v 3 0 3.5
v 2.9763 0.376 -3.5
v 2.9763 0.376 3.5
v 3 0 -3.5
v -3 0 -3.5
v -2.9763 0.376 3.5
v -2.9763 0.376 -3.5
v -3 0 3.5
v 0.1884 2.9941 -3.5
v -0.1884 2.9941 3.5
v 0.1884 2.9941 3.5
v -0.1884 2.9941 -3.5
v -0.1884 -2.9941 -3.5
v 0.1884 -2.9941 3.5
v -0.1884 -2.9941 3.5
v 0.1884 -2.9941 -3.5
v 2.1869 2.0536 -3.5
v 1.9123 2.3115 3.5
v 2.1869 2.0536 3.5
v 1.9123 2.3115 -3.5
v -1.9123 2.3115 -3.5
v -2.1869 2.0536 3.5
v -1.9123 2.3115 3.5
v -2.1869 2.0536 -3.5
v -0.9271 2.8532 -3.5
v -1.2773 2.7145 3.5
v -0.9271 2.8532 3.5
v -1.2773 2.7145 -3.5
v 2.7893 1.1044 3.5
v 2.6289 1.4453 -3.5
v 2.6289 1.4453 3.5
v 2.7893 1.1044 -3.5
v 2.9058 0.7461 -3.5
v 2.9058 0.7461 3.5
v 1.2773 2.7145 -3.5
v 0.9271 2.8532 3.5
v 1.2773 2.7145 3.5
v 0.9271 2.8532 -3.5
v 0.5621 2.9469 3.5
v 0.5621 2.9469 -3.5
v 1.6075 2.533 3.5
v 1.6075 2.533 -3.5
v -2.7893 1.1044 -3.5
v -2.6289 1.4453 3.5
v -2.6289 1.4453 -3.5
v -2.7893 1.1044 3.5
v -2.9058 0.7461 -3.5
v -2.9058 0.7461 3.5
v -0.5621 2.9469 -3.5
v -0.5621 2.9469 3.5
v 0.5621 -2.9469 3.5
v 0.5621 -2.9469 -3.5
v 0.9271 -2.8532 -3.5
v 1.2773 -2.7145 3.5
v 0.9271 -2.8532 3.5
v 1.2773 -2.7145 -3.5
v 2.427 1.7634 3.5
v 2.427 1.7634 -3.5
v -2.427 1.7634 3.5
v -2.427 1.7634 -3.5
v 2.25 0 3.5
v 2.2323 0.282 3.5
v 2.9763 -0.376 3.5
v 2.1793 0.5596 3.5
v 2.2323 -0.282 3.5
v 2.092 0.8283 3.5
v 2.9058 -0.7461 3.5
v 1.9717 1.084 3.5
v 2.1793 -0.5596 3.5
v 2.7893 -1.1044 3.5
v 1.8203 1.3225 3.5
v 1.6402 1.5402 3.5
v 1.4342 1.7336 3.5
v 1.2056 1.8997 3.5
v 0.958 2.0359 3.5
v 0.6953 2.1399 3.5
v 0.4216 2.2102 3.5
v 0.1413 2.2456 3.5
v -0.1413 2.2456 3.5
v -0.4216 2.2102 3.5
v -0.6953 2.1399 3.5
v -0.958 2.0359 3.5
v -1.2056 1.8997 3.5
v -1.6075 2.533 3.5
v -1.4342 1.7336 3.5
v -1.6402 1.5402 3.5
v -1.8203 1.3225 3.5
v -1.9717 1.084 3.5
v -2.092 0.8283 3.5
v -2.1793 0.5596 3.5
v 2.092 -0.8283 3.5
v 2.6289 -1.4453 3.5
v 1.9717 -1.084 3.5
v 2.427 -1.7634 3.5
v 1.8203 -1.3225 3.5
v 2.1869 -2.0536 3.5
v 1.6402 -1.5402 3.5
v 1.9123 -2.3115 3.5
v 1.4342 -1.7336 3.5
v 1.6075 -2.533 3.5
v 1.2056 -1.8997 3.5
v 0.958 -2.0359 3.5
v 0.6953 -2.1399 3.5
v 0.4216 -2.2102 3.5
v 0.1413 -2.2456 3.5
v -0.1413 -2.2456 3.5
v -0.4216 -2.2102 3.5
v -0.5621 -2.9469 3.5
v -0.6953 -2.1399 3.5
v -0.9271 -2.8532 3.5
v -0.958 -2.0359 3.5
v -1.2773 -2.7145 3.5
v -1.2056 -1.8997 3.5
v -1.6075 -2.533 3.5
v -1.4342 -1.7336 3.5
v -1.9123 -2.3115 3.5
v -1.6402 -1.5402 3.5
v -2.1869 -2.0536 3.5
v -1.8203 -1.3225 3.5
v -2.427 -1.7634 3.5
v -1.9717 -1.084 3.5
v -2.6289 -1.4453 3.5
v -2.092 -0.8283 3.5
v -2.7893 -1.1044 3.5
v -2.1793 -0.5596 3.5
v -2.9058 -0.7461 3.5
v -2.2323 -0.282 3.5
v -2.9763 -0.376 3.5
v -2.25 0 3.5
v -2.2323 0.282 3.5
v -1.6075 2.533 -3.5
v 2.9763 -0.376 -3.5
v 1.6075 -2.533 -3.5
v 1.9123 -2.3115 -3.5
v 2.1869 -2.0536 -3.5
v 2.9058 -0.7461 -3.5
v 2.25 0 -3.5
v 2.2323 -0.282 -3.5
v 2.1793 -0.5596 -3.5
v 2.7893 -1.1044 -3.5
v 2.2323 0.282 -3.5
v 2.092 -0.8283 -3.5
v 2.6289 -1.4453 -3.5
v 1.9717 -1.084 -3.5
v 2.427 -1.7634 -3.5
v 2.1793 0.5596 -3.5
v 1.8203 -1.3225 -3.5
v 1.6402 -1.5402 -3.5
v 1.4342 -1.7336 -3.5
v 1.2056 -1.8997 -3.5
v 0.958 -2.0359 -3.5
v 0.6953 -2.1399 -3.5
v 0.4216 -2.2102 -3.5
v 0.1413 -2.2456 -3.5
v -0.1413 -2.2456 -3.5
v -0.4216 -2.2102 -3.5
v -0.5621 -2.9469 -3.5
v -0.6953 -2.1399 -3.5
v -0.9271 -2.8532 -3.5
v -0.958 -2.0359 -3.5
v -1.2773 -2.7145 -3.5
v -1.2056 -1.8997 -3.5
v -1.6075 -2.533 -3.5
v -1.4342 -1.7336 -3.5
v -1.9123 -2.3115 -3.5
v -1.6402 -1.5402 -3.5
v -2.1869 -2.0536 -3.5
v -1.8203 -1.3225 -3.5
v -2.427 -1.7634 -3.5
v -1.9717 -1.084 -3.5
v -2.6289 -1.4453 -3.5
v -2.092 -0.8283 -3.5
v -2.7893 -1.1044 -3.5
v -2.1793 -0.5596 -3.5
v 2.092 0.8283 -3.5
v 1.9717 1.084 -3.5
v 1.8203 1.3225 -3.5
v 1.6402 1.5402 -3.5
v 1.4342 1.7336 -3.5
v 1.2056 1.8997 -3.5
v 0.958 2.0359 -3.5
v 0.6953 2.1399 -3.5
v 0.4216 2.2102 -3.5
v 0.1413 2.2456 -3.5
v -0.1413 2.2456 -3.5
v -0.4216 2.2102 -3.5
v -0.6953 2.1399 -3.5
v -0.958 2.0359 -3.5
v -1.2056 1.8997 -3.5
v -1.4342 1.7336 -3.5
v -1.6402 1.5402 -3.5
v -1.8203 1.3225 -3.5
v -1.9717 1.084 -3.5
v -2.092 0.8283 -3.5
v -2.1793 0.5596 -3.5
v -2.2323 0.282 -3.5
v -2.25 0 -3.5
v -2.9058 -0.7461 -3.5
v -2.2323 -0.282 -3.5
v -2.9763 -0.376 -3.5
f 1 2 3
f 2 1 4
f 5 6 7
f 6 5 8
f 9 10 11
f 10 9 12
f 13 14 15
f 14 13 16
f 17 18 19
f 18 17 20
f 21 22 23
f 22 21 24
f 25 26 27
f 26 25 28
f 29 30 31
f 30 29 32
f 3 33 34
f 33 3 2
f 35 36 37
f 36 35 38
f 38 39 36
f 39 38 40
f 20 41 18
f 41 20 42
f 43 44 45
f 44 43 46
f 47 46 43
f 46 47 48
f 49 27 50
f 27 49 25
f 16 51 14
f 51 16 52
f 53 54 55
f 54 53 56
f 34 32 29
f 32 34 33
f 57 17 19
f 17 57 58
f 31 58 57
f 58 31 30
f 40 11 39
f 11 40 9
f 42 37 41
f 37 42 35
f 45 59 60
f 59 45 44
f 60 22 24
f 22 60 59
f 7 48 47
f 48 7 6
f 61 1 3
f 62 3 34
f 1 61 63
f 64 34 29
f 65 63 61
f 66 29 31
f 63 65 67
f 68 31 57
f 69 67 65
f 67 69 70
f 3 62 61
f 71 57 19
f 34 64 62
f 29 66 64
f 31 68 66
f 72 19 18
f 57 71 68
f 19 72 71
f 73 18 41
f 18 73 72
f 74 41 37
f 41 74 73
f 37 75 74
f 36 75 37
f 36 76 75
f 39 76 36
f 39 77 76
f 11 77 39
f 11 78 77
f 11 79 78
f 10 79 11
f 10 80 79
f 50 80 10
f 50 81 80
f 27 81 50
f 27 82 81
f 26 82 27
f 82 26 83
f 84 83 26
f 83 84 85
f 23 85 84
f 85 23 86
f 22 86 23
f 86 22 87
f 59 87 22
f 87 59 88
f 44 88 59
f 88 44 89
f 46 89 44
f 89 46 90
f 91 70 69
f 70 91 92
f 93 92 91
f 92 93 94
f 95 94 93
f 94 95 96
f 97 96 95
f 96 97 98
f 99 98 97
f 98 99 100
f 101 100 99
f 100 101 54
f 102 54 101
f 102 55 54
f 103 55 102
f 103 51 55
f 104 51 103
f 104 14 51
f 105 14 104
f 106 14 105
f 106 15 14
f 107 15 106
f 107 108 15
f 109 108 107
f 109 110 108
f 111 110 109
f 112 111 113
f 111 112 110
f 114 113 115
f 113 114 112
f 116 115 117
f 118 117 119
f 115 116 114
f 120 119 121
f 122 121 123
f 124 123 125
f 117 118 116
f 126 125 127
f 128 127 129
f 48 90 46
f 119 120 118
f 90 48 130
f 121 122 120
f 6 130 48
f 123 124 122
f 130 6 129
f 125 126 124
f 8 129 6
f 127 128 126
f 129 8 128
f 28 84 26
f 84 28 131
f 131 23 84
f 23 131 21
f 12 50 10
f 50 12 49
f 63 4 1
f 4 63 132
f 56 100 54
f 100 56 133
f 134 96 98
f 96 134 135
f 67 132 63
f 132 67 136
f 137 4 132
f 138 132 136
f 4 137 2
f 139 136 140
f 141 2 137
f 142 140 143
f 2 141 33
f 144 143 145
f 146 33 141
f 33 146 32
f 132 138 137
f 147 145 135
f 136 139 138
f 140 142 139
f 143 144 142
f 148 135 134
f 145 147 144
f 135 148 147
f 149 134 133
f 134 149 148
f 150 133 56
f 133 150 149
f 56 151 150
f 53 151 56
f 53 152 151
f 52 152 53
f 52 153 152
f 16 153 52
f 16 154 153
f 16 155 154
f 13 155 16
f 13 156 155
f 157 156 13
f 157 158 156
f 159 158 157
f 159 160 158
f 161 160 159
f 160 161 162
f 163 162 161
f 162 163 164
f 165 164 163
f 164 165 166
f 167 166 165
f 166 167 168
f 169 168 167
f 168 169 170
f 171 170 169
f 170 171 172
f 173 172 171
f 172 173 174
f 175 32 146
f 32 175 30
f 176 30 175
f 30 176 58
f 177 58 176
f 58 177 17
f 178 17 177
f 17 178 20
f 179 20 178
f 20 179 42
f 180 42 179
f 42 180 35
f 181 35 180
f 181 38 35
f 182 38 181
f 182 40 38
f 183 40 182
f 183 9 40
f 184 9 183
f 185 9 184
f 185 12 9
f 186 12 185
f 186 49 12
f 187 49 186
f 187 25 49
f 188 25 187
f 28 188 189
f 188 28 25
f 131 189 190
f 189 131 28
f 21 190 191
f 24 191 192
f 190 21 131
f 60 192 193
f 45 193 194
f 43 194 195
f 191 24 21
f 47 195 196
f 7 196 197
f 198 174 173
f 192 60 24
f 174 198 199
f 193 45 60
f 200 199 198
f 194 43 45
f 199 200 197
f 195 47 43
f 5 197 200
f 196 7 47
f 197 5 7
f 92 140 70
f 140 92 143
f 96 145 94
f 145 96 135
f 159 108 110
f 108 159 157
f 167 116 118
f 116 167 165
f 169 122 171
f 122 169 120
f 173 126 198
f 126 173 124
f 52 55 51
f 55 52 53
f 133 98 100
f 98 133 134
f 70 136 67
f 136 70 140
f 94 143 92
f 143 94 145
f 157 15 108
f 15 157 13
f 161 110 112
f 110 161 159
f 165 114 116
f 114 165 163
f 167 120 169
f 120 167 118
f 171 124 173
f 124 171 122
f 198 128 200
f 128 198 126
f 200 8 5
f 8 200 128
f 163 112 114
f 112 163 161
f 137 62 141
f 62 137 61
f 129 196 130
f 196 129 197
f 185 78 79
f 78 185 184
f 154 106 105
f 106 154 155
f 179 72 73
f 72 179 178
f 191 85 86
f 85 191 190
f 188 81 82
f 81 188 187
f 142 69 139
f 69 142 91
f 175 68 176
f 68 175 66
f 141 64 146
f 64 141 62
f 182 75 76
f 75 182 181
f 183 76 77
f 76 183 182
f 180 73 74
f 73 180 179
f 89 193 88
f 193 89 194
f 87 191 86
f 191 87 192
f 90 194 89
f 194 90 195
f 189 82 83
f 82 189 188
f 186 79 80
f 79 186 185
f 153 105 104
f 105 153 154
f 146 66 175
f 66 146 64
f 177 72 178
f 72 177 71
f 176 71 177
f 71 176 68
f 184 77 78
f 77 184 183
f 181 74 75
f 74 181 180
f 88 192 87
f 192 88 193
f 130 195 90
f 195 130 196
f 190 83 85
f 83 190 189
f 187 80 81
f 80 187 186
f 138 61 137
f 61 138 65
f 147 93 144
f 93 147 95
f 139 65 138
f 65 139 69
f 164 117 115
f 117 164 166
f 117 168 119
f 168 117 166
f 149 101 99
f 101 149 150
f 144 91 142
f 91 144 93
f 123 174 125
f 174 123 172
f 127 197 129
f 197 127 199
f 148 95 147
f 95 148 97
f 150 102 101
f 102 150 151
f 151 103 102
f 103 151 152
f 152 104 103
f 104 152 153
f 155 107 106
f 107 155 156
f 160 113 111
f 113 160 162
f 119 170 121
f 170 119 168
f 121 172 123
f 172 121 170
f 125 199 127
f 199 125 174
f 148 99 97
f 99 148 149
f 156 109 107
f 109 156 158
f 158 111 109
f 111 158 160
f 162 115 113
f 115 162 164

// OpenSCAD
$fn = 50;


difference() {
	union() {
		translate(v = [0, 0, -3.5000000000]) {
			cylinder(h = 7, r = 3.0000000000);
		}
	}
	union() {
		translate(v = [0, 0, -100.0000000000]) {
			cylinder(h = 200, r = 2.2500000000);
		}
	}
}
